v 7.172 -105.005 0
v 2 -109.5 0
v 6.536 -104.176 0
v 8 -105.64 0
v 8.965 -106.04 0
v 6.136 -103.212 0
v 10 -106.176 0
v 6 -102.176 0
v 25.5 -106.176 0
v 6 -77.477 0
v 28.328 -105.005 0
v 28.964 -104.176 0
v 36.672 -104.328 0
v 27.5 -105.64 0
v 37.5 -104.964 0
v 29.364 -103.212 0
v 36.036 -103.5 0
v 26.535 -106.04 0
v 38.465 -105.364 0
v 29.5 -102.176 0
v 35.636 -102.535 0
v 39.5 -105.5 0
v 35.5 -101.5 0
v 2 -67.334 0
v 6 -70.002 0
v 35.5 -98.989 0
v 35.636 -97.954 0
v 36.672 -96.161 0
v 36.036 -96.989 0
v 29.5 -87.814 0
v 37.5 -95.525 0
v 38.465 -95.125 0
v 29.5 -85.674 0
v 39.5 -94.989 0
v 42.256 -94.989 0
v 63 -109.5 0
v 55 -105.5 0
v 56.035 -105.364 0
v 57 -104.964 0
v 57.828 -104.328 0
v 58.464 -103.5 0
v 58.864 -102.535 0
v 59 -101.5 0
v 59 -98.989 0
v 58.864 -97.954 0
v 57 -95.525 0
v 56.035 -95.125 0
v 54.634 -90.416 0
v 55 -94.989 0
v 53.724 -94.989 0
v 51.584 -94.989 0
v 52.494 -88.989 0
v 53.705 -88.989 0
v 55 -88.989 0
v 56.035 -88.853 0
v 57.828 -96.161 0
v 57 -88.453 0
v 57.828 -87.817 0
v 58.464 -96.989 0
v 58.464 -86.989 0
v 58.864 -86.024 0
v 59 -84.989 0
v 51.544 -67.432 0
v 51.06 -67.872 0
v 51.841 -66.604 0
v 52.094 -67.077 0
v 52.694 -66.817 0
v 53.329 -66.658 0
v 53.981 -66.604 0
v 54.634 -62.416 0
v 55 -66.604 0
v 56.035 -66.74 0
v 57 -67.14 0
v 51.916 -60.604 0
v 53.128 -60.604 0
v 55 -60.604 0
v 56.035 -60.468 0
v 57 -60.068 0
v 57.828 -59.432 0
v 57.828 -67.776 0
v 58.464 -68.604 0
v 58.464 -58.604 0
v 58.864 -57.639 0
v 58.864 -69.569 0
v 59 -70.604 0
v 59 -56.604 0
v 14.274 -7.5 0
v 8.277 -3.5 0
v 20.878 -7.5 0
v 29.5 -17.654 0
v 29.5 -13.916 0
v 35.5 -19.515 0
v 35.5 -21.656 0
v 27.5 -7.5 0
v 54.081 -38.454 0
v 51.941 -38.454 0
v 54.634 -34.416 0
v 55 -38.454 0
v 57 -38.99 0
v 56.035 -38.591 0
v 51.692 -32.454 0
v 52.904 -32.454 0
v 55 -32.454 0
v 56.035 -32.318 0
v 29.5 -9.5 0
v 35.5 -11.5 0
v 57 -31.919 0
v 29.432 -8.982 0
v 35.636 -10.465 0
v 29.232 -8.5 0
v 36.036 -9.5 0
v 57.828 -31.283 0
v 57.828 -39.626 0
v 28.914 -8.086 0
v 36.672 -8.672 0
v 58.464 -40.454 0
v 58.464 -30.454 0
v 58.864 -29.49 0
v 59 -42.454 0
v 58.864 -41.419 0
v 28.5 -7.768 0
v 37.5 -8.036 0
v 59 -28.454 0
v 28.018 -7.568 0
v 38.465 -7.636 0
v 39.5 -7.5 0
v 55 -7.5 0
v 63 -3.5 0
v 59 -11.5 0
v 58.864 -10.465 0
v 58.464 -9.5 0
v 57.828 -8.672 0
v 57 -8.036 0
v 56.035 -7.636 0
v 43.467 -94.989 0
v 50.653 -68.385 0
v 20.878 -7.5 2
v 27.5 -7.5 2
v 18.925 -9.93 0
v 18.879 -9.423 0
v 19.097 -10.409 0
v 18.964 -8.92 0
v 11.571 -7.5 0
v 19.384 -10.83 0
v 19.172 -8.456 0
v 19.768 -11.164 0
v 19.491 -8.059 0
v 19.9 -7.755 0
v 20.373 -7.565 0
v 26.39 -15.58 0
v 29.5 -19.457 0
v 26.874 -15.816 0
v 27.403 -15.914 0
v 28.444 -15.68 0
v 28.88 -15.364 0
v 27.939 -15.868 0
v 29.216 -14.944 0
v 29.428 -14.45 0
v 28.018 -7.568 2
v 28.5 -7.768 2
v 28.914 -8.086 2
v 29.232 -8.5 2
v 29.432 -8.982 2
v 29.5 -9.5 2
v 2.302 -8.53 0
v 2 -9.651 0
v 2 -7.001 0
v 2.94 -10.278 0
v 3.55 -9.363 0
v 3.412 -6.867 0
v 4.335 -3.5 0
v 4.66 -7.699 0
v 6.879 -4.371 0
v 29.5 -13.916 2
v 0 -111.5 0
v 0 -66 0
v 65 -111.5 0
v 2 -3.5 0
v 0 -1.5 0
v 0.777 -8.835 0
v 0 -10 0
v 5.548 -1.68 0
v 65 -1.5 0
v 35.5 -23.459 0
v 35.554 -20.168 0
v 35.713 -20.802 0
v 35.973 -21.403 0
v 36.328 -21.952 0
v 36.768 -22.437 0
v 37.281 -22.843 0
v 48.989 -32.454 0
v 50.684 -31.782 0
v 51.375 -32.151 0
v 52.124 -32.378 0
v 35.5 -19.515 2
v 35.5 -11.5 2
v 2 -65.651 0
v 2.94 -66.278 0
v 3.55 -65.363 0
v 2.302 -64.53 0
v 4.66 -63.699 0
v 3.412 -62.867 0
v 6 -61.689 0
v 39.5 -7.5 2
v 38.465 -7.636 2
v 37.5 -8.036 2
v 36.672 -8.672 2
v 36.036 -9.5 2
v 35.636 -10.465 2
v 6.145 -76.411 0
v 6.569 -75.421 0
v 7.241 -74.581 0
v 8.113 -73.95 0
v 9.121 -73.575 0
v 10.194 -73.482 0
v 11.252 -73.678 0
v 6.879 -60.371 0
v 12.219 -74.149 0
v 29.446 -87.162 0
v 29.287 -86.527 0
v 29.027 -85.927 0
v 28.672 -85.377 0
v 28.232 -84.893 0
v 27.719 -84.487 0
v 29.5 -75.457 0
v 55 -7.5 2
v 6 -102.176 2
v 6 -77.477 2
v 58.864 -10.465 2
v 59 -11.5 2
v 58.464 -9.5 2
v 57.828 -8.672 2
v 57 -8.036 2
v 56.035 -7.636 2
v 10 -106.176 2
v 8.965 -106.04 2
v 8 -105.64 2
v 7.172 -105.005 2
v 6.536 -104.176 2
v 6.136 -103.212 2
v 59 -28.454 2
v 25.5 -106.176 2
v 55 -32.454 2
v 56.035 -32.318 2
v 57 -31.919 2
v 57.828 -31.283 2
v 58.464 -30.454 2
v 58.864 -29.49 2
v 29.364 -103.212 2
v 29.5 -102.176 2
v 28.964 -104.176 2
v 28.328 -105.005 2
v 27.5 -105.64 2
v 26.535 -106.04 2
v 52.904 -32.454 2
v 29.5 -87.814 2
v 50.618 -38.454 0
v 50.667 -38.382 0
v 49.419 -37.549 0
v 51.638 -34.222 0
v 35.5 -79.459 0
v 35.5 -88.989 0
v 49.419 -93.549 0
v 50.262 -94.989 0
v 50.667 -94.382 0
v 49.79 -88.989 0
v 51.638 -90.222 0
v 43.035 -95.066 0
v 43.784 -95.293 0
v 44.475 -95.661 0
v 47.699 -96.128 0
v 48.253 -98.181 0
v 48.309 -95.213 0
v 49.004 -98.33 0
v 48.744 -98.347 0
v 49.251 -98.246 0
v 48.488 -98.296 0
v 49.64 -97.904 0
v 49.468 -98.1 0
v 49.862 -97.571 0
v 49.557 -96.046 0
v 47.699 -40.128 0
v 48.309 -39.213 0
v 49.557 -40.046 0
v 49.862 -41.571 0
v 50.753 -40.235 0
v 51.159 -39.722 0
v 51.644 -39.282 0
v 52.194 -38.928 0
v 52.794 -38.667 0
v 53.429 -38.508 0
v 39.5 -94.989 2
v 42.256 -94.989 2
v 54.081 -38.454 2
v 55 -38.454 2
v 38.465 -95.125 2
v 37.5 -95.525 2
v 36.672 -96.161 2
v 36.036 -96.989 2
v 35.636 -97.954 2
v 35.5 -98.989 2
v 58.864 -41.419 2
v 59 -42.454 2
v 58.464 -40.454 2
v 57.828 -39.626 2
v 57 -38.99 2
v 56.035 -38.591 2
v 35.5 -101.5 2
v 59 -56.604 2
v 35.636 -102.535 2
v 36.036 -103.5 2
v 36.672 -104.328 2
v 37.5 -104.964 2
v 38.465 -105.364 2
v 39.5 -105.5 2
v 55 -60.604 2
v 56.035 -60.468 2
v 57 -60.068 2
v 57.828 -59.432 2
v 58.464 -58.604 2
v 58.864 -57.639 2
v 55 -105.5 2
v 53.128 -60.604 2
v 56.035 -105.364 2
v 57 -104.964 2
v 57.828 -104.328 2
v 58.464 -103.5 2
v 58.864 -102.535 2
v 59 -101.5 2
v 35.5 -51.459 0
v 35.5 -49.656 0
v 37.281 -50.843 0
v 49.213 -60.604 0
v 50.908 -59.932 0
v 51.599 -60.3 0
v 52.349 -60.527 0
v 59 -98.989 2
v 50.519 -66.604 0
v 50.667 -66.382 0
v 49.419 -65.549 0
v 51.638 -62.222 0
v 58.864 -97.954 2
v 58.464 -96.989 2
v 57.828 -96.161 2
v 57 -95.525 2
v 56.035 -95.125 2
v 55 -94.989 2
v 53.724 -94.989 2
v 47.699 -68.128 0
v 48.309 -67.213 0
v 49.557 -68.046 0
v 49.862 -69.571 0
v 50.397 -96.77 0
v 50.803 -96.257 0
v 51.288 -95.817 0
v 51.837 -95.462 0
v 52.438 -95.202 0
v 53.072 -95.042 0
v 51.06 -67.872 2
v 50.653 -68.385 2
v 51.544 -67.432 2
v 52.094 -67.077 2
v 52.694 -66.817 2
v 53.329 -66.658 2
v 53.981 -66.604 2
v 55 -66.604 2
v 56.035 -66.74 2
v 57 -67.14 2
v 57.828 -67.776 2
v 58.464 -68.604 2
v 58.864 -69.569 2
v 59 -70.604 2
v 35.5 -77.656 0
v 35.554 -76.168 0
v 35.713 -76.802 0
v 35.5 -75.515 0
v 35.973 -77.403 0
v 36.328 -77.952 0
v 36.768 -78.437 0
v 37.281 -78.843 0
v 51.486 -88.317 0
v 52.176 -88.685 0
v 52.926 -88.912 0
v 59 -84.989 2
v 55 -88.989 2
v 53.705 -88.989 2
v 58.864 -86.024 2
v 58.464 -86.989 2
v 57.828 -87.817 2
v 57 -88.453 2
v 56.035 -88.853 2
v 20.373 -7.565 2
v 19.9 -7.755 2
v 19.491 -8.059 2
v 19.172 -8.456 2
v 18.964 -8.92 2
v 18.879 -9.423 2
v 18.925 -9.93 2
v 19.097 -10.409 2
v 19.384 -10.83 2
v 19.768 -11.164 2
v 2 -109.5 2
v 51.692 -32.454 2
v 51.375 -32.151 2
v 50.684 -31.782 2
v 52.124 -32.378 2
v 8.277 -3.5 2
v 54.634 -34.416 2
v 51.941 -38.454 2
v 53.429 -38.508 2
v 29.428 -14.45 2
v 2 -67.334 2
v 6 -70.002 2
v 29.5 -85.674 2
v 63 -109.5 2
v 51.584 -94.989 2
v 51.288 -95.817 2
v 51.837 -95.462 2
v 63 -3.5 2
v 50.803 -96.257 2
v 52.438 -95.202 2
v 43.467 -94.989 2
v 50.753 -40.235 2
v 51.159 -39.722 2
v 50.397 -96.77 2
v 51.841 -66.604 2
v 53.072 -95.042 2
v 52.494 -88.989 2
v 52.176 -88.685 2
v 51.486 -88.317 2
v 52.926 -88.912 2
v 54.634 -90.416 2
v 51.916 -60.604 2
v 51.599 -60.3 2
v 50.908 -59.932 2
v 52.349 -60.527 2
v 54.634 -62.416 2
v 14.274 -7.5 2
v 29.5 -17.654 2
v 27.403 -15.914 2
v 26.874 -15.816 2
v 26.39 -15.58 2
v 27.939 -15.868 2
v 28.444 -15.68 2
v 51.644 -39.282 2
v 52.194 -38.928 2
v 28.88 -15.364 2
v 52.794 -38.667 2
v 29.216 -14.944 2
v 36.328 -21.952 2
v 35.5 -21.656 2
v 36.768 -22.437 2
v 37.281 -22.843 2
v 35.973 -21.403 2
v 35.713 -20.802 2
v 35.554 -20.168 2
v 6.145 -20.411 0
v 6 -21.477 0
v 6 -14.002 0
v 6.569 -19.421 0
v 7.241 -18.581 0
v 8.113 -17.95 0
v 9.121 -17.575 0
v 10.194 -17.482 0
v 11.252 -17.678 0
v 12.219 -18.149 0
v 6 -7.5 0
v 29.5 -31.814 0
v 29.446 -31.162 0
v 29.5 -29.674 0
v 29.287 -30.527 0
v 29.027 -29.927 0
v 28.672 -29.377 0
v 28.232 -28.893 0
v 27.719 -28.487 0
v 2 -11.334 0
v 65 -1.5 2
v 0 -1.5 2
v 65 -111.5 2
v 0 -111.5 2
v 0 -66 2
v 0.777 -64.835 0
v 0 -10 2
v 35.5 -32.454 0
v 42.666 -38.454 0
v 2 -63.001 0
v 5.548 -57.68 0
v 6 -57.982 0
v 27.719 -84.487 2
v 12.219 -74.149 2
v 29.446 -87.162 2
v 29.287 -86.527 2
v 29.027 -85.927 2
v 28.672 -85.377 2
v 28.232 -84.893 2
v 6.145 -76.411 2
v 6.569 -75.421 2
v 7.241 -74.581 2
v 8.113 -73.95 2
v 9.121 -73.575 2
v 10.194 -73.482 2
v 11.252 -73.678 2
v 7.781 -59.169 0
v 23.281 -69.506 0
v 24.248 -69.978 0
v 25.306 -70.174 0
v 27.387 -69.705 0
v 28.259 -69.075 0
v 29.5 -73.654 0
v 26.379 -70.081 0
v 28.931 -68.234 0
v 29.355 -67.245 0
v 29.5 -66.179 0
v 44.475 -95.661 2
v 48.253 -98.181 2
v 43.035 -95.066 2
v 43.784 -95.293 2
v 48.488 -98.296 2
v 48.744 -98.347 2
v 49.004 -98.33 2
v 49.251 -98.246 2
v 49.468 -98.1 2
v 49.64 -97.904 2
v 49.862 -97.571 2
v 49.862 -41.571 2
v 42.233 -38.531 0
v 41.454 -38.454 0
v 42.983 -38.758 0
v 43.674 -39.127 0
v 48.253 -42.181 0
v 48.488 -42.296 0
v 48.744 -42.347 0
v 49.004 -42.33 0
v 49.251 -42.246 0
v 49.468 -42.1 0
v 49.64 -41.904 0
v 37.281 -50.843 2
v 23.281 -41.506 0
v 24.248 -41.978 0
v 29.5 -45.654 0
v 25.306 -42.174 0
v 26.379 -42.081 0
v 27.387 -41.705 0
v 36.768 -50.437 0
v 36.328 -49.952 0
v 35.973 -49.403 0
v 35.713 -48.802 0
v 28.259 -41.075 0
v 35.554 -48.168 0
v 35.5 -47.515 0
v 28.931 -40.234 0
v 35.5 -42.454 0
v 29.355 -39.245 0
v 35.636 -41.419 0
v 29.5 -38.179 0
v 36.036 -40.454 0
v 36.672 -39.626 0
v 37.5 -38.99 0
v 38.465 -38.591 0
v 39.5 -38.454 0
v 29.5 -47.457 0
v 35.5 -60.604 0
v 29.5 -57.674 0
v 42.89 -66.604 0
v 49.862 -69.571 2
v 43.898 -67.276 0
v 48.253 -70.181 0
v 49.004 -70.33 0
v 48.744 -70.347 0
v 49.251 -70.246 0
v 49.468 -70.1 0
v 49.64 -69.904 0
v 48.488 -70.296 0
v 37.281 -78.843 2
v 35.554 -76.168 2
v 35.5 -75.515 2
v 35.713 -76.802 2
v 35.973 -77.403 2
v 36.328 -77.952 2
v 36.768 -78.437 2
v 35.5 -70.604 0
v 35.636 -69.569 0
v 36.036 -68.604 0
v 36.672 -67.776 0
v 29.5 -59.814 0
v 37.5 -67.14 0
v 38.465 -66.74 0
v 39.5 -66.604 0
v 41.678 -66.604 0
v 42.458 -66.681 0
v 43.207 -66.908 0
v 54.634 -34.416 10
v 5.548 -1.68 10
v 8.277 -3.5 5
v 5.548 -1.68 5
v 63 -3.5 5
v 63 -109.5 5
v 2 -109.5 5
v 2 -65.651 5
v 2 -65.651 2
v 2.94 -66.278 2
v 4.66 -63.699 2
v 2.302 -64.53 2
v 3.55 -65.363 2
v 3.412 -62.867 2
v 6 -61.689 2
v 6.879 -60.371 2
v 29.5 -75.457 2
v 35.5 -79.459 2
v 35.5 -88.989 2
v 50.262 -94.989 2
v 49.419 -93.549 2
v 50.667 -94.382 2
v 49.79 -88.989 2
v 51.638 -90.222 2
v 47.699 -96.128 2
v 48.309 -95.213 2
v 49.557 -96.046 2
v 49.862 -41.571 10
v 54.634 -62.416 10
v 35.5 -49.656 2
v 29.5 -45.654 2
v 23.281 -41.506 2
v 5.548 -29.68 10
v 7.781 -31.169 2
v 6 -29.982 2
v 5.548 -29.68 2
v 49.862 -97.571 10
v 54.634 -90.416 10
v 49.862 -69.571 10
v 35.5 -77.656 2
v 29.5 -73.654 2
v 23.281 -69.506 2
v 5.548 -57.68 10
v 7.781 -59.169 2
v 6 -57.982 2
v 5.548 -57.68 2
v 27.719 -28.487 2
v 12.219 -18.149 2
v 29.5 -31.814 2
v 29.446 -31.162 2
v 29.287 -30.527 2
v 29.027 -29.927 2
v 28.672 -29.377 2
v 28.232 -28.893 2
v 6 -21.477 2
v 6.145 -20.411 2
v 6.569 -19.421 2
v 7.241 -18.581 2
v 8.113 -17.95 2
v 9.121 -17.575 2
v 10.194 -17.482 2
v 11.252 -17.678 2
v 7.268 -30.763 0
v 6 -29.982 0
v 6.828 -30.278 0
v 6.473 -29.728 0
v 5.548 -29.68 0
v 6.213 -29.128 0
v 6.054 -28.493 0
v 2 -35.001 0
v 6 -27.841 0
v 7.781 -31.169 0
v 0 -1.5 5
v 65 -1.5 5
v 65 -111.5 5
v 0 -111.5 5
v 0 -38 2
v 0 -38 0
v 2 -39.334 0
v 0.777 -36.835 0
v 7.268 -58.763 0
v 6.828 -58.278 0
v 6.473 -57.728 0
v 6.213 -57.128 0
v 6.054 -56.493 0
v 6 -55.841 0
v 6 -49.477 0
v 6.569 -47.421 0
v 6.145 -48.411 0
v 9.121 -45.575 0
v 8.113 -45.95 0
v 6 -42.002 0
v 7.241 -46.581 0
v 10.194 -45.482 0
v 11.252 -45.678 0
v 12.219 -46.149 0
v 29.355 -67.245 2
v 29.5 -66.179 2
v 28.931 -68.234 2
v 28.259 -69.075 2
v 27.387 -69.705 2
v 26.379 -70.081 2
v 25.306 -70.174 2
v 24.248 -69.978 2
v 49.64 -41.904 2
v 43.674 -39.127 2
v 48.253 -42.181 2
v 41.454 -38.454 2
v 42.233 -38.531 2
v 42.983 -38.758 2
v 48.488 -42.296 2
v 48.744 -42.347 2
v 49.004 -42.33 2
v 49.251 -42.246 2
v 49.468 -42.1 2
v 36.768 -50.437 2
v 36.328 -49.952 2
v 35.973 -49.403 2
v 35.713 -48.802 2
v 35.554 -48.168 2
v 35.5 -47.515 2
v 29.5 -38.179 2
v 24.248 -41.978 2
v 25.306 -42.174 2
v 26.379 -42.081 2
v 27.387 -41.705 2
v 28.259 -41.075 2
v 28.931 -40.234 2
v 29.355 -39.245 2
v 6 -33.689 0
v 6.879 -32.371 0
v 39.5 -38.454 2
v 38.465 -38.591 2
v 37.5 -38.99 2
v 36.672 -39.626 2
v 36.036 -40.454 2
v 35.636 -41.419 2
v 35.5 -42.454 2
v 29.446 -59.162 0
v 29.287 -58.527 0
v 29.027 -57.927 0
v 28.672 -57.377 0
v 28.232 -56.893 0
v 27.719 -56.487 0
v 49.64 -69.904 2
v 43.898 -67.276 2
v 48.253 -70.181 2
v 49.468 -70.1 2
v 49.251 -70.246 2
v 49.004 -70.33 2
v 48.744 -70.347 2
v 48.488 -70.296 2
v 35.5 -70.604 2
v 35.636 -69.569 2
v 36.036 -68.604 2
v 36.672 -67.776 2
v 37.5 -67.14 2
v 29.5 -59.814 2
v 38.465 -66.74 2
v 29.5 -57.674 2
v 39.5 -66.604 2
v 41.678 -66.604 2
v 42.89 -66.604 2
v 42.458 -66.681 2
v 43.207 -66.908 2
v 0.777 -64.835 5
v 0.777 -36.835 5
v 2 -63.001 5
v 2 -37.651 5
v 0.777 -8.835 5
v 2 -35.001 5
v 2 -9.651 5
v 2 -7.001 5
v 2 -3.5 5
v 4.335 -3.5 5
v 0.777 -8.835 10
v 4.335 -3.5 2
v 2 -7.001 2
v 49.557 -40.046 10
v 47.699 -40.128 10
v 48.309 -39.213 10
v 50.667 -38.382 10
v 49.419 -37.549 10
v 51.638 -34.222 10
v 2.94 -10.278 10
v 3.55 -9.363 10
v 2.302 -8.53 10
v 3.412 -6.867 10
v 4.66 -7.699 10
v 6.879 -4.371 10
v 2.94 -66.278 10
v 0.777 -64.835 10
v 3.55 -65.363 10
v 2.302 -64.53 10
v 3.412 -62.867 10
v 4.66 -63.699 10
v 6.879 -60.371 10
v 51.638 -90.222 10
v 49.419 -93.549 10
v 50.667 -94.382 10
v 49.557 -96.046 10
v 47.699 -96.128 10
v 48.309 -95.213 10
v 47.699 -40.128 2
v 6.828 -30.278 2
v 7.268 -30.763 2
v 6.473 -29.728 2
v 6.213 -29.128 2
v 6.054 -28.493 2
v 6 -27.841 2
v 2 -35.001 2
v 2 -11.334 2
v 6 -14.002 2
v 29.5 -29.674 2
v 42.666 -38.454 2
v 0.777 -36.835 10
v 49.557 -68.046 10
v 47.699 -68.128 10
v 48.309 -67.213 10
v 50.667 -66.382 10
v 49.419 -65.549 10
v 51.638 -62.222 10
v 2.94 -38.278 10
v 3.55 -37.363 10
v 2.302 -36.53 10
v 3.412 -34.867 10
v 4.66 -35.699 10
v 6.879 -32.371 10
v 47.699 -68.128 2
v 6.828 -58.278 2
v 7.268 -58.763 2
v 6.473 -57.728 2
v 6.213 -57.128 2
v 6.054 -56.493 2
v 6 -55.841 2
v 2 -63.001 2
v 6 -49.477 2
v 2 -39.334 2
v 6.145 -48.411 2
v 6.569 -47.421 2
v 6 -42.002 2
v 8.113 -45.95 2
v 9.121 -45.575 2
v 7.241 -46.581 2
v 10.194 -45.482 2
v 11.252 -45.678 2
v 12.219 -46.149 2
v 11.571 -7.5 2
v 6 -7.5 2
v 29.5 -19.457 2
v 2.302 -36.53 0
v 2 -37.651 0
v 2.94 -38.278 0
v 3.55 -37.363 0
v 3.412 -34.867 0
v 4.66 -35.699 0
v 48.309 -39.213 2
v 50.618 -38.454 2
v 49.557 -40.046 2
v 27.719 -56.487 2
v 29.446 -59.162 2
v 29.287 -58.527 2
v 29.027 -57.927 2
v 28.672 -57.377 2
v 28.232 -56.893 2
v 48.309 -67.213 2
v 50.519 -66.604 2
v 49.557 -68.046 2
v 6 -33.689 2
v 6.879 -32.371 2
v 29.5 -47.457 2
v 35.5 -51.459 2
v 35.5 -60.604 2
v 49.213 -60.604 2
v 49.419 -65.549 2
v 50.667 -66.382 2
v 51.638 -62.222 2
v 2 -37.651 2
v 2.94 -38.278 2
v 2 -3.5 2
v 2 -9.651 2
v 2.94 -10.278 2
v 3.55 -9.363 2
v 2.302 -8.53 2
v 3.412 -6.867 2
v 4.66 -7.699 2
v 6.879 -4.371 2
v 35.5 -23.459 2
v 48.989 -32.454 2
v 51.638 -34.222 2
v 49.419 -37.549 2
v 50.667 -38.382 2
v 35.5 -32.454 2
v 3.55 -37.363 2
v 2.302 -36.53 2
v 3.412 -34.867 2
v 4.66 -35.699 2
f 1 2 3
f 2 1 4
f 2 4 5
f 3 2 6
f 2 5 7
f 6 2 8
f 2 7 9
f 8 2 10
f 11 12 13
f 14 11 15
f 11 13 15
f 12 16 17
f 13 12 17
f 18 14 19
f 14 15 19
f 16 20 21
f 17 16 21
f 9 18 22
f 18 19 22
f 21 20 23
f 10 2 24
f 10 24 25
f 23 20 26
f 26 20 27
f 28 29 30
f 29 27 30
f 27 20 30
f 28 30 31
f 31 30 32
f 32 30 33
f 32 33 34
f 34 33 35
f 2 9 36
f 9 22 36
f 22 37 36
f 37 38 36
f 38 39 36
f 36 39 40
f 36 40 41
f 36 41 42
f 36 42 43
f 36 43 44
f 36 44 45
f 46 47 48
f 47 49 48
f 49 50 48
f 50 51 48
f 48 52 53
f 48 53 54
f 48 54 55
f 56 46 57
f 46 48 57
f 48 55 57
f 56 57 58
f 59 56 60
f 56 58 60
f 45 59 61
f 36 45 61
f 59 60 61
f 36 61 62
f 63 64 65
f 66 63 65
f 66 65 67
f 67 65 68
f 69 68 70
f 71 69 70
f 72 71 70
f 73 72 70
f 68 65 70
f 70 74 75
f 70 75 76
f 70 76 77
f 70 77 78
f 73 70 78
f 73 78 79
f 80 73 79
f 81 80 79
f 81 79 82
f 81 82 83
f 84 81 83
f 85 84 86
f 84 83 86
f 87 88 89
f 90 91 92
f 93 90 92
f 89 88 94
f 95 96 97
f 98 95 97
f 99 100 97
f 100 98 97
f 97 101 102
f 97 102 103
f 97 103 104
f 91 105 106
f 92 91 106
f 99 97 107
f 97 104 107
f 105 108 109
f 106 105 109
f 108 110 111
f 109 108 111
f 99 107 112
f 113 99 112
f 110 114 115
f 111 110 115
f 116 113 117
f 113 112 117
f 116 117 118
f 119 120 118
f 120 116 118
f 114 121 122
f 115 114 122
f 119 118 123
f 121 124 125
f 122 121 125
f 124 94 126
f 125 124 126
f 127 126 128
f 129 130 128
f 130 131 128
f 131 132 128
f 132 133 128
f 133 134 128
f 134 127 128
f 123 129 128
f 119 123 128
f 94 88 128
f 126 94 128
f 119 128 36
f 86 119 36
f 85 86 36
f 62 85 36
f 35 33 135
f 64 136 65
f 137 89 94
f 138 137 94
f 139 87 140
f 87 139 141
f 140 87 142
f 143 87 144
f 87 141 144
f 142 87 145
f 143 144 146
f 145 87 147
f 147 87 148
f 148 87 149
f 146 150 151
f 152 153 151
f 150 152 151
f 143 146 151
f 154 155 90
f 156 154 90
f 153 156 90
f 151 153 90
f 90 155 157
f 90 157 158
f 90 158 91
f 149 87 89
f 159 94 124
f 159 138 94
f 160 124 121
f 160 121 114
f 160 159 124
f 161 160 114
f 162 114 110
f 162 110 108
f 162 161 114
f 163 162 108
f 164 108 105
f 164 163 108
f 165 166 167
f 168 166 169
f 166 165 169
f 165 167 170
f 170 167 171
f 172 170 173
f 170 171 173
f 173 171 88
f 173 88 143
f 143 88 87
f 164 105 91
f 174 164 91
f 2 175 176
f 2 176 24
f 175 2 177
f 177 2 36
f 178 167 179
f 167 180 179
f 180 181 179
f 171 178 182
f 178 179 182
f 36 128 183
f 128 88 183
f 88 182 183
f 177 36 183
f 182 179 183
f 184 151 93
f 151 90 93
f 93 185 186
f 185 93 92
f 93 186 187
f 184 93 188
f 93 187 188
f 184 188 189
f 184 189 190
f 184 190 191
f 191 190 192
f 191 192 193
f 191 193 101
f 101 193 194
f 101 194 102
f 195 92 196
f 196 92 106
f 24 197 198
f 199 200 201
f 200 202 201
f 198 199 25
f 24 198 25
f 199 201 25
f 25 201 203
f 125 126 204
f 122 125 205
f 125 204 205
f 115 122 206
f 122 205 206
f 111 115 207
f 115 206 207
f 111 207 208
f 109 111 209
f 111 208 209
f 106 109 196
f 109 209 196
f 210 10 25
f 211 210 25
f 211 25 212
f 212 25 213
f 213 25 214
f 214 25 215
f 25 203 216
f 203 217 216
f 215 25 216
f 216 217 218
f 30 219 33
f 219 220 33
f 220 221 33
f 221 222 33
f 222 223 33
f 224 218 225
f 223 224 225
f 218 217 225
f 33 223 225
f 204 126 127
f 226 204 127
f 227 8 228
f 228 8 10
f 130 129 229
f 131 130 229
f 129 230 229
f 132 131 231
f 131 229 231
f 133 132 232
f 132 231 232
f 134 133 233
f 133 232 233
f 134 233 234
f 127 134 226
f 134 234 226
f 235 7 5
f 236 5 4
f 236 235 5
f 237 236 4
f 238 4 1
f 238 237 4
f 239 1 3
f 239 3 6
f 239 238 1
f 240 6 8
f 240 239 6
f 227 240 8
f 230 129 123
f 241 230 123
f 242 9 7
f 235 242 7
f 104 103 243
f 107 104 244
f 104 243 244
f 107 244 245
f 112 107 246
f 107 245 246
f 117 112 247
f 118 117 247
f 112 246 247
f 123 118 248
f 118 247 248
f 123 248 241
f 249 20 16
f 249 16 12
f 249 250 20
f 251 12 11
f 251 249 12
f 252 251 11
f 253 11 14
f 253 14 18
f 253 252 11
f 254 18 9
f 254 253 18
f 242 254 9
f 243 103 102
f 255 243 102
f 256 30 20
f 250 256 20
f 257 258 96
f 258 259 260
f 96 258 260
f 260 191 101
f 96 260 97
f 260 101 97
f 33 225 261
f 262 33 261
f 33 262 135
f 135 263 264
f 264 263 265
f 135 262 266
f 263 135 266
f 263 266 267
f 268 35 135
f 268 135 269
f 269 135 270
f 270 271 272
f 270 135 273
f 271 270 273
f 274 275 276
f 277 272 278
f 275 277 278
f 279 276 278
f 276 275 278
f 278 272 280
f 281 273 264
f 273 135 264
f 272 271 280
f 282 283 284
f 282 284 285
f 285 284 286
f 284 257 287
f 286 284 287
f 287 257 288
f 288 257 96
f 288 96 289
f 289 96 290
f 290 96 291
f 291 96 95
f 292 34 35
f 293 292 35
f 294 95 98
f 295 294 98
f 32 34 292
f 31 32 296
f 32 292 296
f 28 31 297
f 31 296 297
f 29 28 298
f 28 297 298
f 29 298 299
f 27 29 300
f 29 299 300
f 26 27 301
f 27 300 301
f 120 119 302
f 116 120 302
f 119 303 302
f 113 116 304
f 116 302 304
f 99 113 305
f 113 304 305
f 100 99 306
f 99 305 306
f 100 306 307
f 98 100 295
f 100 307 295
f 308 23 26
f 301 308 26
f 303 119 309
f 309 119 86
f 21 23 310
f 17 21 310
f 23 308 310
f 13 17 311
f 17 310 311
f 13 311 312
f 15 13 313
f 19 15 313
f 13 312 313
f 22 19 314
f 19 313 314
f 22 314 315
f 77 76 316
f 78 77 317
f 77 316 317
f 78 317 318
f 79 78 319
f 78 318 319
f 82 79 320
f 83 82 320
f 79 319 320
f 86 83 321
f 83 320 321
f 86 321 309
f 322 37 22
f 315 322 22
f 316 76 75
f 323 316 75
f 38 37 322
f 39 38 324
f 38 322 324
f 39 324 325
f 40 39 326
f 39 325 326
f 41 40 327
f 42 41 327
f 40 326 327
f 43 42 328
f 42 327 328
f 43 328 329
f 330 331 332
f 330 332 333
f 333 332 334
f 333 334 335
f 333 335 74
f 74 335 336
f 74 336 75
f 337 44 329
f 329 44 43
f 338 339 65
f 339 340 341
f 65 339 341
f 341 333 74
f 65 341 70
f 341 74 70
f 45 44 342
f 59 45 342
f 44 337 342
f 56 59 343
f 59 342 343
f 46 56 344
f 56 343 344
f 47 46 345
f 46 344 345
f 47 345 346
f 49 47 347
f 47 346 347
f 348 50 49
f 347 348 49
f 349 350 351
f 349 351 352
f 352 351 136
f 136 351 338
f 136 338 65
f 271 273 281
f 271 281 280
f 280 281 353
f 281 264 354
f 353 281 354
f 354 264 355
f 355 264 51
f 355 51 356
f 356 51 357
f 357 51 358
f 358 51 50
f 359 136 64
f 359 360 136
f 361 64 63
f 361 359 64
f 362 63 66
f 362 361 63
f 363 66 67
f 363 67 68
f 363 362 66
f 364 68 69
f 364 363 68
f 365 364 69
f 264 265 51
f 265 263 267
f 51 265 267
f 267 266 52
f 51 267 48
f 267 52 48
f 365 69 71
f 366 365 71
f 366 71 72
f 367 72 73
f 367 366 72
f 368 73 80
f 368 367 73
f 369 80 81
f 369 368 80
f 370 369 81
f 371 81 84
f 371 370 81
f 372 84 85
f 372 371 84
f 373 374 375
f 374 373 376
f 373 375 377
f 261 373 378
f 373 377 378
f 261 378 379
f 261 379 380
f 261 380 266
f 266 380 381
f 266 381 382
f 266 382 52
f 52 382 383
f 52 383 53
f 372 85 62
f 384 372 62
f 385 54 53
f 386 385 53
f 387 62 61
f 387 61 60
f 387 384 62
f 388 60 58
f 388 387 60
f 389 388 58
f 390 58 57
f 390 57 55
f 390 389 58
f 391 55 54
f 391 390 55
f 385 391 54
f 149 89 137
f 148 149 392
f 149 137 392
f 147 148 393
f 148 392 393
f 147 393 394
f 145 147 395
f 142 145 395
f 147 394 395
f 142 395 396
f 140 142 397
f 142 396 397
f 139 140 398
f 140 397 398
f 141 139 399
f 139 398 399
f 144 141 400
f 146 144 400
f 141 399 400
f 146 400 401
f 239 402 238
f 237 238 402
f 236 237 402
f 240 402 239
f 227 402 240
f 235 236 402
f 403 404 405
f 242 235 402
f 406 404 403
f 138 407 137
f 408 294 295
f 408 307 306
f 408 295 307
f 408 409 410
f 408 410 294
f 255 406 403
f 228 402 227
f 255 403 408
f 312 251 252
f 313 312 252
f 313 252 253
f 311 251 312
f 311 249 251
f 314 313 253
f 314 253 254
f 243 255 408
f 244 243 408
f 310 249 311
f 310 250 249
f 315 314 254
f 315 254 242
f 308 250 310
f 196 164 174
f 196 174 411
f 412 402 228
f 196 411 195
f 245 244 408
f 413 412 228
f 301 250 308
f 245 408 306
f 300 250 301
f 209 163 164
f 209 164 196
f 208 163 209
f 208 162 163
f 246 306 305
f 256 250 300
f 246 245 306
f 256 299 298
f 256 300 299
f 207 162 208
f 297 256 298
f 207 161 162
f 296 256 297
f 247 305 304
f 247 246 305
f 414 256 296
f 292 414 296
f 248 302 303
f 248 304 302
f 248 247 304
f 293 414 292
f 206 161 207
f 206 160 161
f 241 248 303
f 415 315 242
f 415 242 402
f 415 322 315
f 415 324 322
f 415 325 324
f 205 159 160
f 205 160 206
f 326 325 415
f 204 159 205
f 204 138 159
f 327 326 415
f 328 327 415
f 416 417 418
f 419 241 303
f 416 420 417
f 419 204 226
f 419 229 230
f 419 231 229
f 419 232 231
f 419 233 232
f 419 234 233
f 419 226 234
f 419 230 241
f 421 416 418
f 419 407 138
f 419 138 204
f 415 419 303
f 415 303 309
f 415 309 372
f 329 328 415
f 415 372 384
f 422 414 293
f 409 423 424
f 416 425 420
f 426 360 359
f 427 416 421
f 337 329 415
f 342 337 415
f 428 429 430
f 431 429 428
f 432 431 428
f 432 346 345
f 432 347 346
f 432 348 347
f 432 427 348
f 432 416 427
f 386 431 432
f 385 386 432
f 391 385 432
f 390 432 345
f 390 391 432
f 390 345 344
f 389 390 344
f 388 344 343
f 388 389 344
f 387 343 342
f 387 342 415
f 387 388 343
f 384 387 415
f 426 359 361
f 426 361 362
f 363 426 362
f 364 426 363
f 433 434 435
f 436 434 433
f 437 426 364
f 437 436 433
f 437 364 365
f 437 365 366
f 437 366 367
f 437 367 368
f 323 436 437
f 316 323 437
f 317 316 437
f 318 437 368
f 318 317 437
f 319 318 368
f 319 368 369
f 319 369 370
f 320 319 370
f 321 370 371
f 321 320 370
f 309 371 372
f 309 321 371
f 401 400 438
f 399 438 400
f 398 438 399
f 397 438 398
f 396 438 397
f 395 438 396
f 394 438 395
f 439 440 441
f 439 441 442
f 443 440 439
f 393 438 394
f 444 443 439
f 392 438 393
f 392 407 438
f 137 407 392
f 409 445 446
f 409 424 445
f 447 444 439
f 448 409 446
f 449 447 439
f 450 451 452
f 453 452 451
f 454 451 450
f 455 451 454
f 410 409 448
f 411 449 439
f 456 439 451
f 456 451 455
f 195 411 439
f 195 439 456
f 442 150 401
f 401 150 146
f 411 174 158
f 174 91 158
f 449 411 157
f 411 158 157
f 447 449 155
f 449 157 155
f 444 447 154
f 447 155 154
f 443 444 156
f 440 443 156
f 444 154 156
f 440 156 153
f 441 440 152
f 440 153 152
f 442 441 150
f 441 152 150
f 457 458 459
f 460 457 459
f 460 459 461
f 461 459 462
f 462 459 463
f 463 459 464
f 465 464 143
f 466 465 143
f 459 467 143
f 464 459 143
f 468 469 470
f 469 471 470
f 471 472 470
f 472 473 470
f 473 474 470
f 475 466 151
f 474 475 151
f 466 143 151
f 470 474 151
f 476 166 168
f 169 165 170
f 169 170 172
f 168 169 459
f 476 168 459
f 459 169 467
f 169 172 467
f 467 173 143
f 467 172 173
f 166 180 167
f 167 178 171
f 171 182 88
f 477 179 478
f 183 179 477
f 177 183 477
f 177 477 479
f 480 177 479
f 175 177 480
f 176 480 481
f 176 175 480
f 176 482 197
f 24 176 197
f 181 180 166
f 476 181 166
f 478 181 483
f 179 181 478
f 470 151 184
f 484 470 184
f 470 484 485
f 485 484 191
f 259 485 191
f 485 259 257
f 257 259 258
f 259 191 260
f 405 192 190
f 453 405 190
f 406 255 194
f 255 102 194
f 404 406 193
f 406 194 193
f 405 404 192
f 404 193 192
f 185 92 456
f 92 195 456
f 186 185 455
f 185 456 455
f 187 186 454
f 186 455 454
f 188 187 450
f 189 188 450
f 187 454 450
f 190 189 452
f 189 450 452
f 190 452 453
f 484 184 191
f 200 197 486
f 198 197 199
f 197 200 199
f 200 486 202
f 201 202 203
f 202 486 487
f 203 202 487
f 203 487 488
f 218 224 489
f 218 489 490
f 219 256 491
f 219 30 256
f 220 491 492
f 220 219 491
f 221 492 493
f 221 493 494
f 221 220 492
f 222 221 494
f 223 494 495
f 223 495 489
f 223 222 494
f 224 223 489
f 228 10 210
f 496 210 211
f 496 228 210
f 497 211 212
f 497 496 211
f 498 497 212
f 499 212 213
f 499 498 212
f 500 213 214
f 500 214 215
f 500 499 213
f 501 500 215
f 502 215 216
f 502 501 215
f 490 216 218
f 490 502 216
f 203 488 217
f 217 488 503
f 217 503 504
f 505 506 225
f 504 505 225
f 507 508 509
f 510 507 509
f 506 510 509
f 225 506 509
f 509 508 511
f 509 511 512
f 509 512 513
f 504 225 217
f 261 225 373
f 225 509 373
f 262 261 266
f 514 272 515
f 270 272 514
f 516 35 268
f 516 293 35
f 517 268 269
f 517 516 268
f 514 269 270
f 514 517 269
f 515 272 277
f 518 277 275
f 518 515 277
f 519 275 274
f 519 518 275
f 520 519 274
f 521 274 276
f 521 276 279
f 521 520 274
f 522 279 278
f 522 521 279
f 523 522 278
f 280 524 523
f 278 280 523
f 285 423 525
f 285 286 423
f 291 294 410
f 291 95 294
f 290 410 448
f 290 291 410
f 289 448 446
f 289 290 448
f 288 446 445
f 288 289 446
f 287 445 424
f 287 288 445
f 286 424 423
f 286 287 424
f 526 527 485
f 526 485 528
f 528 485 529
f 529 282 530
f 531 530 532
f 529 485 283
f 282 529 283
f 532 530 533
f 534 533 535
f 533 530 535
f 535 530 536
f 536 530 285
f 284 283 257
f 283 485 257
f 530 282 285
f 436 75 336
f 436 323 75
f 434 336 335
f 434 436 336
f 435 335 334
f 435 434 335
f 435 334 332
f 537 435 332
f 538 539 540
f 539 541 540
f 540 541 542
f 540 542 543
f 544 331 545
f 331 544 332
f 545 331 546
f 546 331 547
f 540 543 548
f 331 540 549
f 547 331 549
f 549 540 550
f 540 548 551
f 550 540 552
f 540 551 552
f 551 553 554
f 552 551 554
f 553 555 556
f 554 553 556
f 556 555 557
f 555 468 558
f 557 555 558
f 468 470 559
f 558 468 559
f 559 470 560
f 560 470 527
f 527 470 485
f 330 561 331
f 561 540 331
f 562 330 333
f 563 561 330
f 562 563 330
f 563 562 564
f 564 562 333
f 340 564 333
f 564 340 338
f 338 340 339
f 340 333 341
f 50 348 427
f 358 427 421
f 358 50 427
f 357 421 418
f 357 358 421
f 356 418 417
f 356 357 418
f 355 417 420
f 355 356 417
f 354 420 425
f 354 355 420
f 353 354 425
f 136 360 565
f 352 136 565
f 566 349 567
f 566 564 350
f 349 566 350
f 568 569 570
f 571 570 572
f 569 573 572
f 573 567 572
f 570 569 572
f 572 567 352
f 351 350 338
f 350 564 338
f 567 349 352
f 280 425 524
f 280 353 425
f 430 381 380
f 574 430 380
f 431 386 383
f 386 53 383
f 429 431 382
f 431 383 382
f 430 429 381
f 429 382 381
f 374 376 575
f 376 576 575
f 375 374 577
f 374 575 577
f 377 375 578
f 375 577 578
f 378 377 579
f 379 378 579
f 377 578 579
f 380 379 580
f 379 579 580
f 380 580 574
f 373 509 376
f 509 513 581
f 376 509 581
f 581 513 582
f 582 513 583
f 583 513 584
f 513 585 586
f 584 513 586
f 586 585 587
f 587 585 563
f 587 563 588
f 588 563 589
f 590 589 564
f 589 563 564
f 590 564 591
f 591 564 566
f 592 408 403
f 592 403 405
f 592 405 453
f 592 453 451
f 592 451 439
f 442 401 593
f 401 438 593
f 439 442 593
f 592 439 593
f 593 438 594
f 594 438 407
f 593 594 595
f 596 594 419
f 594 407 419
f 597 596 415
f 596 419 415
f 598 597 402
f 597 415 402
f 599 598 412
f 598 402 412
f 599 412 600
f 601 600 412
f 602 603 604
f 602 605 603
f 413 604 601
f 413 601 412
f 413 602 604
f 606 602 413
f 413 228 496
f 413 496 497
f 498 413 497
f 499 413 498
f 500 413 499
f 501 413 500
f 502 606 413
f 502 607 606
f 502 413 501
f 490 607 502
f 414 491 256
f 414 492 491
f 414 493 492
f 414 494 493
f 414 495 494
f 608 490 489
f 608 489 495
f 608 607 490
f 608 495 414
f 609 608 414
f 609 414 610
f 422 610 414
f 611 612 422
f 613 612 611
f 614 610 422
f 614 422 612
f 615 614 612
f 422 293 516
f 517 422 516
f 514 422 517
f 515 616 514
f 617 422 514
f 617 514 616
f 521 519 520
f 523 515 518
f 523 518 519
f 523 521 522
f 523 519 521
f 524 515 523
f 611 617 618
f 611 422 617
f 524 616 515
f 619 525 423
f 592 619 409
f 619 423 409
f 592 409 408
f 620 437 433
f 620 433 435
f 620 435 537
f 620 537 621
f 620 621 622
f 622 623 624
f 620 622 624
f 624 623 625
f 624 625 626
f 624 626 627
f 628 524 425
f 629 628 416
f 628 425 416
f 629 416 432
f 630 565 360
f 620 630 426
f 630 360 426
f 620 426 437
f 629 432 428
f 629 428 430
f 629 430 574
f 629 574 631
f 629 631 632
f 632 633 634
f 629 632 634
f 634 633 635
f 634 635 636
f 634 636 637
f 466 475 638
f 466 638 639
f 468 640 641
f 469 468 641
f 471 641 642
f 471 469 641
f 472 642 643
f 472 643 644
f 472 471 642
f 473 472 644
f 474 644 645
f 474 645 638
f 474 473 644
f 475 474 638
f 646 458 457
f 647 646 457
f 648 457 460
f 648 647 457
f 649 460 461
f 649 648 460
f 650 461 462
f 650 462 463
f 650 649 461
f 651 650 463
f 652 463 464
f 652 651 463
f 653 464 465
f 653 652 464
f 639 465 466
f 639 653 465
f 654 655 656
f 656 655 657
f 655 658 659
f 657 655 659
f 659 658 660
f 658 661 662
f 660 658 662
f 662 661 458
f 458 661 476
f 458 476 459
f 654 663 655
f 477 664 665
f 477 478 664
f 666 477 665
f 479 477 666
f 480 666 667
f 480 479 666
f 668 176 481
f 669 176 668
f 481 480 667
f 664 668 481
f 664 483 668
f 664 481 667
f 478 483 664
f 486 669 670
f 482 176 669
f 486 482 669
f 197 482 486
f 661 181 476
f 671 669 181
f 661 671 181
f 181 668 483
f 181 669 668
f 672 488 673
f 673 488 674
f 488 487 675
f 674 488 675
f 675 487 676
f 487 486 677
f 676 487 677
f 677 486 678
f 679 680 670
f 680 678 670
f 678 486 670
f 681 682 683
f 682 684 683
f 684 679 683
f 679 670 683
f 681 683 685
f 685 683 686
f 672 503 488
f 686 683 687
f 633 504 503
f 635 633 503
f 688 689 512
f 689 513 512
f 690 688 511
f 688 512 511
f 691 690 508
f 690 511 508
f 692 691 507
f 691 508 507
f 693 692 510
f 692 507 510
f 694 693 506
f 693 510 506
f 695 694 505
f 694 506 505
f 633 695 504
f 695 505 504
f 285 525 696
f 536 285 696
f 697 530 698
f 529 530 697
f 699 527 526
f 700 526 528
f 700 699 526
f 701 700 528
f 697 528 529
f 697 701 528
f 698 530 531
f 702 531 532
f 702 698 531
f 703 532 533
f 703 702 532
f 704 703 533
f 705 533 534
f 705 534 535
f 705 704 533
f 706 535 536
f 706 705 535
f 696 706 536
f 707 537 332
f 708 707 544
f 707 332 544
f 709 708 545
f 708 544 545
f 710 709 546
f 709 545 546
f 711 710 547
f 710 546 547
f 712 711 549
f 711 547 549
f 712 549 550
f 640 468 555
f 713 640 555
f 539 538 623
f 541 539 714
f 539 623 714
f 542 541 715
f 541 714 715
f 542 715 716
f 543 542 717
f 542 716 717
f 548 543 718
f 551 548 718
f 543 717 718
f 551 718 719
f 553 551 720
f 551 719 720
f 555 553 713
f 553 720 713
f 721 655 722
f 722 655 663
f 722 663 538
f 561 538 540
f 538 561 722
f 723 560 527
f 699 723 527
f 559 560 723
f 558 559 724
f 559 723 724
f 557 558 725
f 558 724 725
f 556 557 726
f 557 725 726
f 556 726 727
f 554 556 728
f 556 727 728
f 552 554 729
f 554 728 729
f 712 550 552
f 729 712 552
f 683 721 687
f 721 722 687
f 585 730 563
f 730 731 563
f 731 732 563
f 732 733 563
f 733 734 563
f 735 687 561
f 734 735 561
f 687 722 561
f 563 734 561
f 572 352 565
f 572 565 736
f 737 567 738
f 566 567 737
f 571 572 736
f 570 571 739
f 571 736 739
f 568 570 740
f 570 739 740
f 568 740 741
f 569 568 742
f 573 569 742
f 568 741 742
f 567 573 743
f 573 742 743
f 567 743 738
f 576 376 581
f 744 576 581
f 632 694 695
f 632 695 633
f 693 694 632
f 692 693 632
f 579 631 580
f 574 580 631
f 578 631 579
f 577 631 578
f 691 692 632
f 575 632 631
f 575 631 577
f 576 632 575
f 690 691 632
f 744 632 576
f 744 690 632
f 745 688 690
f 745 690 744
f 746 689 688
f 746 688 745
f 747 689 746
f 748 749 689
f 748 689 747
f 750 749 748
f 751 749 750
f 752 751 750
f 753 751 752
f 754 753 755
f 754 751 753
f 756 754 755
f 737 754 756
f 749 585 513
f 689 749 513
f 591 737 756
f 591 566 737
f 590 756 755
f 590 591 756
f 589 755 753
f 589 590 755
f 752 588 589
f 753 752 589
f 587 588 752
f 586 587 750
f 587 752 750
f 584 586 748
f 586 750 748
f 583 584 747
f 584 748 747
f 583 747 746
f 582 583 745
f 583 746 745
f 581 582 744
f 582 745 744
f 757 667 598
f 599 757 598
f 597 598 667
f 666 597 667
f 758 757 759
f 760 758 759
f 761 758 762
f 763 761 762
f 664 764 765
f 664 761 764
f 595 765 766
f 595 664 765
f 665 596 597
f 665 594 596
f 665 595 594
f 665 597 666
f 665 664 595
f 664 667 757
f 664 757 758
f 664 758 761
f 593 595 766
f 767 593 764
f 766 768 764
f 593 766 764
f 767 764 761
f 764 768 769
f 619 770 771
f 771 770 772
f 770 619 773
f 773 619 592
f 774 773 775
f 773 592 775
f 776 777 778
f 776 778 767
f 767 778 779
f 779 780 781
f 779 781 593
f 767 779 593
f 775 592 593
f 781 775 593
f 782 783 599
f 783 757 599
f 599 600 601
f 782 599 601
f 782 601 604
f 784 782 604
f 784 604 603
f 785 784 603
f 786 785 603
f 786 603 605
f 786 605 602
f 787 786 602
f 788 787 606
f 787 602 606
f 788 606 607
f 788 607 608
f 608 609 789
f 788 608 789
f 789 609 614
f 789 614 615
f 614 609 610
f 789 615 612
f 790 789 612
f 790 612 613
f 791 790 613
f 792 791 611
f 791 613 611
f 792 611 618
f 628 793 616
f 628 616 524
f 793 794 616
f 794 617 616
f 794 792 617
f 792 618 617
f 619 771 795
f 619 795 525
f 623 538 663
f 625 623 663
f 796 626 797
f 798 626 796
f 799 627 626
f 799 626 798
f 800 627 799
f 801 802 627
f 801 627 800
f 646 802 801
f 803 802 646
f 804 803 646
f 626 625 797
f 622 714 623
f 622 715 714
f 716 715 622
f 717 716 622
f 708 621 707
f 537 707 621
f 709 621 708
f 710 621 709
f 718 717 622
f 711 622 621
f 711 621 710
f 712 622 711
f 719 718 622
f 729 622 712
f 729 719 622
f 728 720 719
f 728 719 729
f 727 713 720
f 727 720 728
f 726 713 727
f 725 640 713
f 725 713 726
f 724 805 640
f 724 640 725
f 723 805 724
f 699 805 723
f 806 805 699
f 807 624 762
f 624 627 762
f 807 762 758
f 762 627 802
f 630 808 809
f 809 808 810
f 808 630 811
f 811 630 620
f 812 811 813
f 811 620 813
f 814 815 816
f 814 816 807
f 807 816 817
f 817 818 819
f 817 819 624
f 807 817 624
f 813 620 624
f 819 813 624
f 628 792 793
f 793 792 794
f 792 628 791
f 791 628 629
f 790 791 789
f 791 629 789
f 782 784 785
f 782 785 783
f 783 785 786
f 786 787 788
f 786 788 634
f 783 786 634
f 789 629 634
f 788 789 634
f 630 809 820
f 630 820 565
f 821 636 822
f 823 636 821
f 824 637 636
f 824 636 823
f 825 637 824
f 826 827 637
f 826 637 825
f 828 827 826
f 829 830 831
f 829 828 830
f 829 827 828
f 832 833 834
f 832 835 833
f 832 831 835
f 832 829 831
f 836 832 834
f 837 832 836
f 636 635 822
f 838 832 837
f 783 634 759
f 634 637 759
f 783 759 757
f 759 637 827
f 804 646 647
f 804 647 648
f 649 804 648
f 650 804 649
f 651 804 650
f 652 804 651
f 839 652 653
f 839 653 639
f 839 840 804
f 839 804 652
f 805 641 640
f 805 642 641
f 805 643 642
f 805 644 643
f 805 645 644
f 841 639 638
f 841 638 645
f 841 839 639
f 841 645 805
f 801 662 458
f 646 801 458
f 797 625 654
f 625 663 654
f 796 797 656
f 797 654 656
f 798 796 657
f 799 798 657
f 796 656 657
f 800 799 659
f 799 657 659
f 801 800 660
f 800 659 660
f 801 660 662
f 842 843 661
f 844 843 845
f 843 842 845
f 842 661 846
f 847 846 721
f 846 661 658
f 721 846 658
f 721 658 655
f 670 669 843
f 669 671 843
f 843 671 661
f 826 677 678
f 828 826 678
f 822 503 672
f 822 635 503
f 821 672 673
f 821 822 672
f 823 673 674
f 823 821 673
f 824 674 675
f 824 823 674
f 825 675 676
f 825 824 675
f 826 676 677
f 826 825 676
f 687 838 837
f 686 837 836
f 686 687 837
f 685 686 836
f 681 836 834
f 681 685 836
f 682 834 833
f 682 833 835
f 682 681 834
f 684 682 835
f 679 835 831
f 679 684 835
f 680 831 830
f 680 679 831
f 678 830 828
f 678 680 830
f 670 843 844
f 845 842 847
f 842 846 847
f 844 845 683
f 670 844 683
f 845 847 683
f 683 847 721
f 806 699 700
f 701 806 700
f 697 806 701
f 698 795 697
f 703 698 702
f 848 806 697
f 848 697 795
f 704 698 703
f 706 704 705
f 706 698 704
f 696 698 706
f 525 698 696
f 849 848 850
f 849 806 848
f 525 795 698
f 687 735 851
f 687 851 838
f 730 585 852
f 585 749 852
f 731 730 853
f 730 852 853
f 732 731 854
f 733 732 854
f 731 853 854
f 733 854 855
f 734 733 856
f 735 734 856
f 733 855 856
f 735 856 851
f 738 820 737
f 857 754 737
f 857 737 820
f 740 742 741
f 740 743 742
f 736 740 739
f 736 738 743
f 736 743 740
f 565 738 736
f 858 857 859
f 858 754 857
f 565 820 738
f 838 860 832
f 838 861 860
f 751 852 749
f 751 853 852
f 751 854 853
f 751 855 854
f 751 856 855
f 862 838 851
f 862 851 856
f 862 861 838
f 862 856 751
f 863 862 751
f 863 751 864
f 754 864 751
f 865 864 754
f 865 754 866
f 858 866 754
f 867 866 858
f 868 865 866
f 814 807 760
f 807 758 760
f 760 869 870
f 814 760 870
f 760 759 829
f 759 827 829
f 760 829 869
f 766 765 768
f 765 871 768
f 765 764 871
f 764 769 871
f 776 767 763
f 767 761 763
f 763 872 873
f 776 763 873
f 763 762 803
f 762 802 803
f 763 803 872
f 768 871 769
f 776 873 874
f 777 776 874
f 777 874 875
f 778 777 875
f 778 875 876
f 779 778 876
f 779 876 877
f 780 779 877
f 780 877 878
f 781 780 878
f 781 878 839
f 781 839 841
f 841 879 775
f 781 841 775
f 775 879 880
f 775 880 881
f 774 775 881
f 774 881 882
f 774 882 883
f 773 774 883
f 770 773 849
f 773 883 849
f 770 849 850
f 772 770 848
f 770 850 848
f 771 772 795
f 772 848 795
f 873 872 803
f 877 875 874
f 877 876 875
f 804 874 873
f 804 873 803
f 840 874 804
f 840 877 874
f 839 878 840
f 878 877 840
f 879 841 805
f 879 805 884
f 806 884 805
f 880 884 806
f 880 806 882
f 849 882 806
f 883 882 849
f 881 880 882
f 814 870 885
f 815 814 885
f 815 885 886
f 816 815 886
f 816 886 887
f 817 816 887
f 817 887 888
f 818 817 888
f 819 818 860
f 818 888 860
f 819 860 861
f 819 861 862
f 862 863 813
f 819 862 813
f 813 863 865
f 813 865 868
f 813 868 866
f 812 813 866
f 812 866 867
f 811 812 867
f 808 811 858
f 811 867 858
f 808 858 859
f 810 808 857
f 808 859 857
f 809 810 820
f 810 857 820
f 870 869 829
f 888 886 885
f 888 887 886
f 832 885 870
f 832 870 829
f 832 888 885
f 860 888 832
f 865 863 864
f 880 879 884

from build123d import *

# Parameters (mm, degrees)
SKETCH002_W            = 65
SKETCH002_H            = 110
SKETCH002_W_2          = 61
SKETCH002_H_2          = 106
PAD002_DEPTH           = 5
SKETCH003_W            = 65
SKETCH003_H            = 110
SKETCH003_W_2          = 23.5
SKETCH003_H_2          = 98.676263
SKETCH003_H_3          = 24.954477
SKETCH003_H_4          = 22.149553
SKETCH003_H_5          = 22.384941
SKETCH003_H_6          = 10.511029
PAD003_DEPTH           = 2
PAD001_DEPTH           = 10
SKETCH_W               = 59
SKETCH_H               = 10
PAD_DEPTH              = 2
FUSION_PLACEMENT_ANGLE = -33.7
FILLET_R               = 1
FILLET001_R            = 4
FILLET002_R            = 4
FILLET003_R            = 2


with BuildPart() as pad002:
    # Sketch002 → Pad002 (new body)
    with BuildSketch(Plane.XY):
        with Locations((32.5, -56.5)):
            Rectangle(SKETCH002_W, SKETCH002_H)
        with Locations((32.5, -56.5)):
            Rectangle(SKETCH002_W_2, SKETCH002_H_2, mode=Mode.SUBTRACT)
    extrude(amount=PAD002_DEPTH)


with BuildPart() as fusion001:
    # Sketch003 → Pad003 (new body)
    with BuildSketch(Plane.XY):
        with Locations((32.5, -56.5)):
            Rectangle(SKETCH003_W, SKETCH003_H)
        with Locations((17.75, -56.838131)):
            Rectangle(SKETCH003_W_2, SKETCH003_H_2, mode=Mode.SUBTRACT)
        with Locations((47.25, -19.977238)):
            Rectangle(SKETCH003_W_2, SKETCH003_H_3, mode=Mode.SUBTRACT)
        with Locations((47.25, -49.529253)):
            Rectangle(SKETCH003_W_2, SKETCH003_H_4, mode=Mode.SUBTRACT)
        with Locations((47.25, -77.7965)):
            Rectangle(SKETCH003_W_2, SKETCH003_H_5, mode=Mode.SUBTRACT)
        with Locations((47.25, -100.244485)):
            Rectangle(SKETCH003_W_2, SKETCH003_H_6, mode=Mode.SUBTRACT)
    extrude(amount=PAD003_DEPTH)

    # Fusion001: union Pad002
    add(pad002.part)


with BuildPart() as pad001:
    # Sketch001 → Pad001 (new body)
    with BuildSketch(Plane.XY):
        Polygon((0, 0), (0, -8.6), (2.6, -8.6), (2.6, -7.5), (1.1, -7.5), (1.1, -5.5), (2.6, -5.5), (2.6, -1.5), (56.4, -1.5), (56.4, -5.5), (57.9, -5.5), (57.9, -7.5), (56.4, -7.5), (56.4, -8.6), (59, -8.6), (59, 0), align=None)
    extrude(amount=PAD001_DEPTH)


with BuildPart() as relay001:
    # Sketch → Pad (new body)
    with BuildSketch(Plane.XY):
        with Locations((29.5, -5)):
            Rectangle(SKETCH_W, SKETCH_H)
    extrude(amount=PAD_DEPTH)

    # Fusion: union Pad001
    add(pad001.part)


with BuildPart() as relay001_1:
    # Fusion placement: moved
    add(relay001.part.moved(Location((5.548444, -1.680459, 0))).rotate(Axis((5.548444, -1.680459, 0), (0, 0, 1)), FUSION_PLACEMENT_ANGLE))


with BuildPart() as clone_of_relay002:
    # Clone001 base: copy of Relay001
    add(relay001_1.part)


with BuildPart() as clone_of_relay002_1:
    # Clone001 placement: moved
    add(clone_of_relay002.part.moved(Location((0, -56, 0))))


with BuildPart() as fillet003:
    # Clone base: copy of Relay001
    add(relay001_1.part)


with BuildPart() as fillet003_1:
    # Clone placement: moved
    add(fillet003.part.moved(Location((0, -28, 0))))

    # Fusion002: union Fusion001, Clone of Relay002, Relay001
    add(fusion001.part)
    add(clone_of_relay002_1.part)
    add(relay001_1.part)

    # Fillet
    fillet_edges = [fillet003_1.edges().sort_by_distance(p)[0] for p in [
        (49.085293, -98.735821, 1),
        (49.085293, -70.735821, 1),
        (49.085293, -42.735821, 1),
    ]]
    fillet(fillet_edges, radius=FILLET_R)

    # Fillet001
    fillet001_edges = [fillet003_1.edges().sort_by_distance(p)[0] for p in [
        (35.5, -94.988971, 1),
        (43.467128, -94.988971, 1),
        (51.584132, -94.988971, 1),
        (35.5, -66.60403, 1),
        (42.889933, -66.60403, 1),
        (51.840855, -66.60403, 1),
        (35.5, -38.454477, 1),
        (42.665688, -38.454477, 1),
        (51.940595, -38.454477, 1),
        (35.5, -7.5, 1),
        (35.5, -21.655663, 1),
        (51.692138, -32.454477, 1),
        (35.5, -49.655663, 1),
        (51.916383, -60.60403, 1),
        (35.5, -77.655663, 1),
        (52.493578, -88.988971, 1),
        (35.5, -105.5, 1),
        (59, -66.60403, 1),
        (59, -38.454477, 1),
        (59, -7.5, 1),
        (59, -94.988971, 1),
        (59, -105.5, 1),
        (59, -88.988971, 1),
        (59, -60.60403, 1),
        (59, -32.454477, 1),
    ]]
    fillet(fillet001_edges, radius=FILLET001_R)

    # Fillet002
    fillet002_edges = [fillet003_1.edges().sort_by_distance(p)[0] for p in [
        (29.5, -85.674054, 1),
        (29.5, -57.674054, 1),
        (29.5, -29.674054, 1),
        (6, -70.001503, 1),
        (6, -42.001503, 1),
        (6, -14.001503, 1),
        (6, -29.981609, 1),
        (6, -57.981609, 1),
        (6, -106.176263, 1),
        (29.5, -45.654161, 1),
        (29.5, -73.654161, 1),
        (29.5, -106.176263, 1),
    ]]
    fillet(fillet002_edges, radius=FILLET002_R)

    # Fillet003
    fillet003_edges = [fillet003_1.edges().sort_by_distance(p)[0] for p in [
        (29.5, -7.5, 1),
        (14.274478, -7.5, 1),
        (29.5, -17.654161, 1),
    ]]
    fillet(fillet003_edges, radius=FILLET003_R)


solid = fillet003_1.part
